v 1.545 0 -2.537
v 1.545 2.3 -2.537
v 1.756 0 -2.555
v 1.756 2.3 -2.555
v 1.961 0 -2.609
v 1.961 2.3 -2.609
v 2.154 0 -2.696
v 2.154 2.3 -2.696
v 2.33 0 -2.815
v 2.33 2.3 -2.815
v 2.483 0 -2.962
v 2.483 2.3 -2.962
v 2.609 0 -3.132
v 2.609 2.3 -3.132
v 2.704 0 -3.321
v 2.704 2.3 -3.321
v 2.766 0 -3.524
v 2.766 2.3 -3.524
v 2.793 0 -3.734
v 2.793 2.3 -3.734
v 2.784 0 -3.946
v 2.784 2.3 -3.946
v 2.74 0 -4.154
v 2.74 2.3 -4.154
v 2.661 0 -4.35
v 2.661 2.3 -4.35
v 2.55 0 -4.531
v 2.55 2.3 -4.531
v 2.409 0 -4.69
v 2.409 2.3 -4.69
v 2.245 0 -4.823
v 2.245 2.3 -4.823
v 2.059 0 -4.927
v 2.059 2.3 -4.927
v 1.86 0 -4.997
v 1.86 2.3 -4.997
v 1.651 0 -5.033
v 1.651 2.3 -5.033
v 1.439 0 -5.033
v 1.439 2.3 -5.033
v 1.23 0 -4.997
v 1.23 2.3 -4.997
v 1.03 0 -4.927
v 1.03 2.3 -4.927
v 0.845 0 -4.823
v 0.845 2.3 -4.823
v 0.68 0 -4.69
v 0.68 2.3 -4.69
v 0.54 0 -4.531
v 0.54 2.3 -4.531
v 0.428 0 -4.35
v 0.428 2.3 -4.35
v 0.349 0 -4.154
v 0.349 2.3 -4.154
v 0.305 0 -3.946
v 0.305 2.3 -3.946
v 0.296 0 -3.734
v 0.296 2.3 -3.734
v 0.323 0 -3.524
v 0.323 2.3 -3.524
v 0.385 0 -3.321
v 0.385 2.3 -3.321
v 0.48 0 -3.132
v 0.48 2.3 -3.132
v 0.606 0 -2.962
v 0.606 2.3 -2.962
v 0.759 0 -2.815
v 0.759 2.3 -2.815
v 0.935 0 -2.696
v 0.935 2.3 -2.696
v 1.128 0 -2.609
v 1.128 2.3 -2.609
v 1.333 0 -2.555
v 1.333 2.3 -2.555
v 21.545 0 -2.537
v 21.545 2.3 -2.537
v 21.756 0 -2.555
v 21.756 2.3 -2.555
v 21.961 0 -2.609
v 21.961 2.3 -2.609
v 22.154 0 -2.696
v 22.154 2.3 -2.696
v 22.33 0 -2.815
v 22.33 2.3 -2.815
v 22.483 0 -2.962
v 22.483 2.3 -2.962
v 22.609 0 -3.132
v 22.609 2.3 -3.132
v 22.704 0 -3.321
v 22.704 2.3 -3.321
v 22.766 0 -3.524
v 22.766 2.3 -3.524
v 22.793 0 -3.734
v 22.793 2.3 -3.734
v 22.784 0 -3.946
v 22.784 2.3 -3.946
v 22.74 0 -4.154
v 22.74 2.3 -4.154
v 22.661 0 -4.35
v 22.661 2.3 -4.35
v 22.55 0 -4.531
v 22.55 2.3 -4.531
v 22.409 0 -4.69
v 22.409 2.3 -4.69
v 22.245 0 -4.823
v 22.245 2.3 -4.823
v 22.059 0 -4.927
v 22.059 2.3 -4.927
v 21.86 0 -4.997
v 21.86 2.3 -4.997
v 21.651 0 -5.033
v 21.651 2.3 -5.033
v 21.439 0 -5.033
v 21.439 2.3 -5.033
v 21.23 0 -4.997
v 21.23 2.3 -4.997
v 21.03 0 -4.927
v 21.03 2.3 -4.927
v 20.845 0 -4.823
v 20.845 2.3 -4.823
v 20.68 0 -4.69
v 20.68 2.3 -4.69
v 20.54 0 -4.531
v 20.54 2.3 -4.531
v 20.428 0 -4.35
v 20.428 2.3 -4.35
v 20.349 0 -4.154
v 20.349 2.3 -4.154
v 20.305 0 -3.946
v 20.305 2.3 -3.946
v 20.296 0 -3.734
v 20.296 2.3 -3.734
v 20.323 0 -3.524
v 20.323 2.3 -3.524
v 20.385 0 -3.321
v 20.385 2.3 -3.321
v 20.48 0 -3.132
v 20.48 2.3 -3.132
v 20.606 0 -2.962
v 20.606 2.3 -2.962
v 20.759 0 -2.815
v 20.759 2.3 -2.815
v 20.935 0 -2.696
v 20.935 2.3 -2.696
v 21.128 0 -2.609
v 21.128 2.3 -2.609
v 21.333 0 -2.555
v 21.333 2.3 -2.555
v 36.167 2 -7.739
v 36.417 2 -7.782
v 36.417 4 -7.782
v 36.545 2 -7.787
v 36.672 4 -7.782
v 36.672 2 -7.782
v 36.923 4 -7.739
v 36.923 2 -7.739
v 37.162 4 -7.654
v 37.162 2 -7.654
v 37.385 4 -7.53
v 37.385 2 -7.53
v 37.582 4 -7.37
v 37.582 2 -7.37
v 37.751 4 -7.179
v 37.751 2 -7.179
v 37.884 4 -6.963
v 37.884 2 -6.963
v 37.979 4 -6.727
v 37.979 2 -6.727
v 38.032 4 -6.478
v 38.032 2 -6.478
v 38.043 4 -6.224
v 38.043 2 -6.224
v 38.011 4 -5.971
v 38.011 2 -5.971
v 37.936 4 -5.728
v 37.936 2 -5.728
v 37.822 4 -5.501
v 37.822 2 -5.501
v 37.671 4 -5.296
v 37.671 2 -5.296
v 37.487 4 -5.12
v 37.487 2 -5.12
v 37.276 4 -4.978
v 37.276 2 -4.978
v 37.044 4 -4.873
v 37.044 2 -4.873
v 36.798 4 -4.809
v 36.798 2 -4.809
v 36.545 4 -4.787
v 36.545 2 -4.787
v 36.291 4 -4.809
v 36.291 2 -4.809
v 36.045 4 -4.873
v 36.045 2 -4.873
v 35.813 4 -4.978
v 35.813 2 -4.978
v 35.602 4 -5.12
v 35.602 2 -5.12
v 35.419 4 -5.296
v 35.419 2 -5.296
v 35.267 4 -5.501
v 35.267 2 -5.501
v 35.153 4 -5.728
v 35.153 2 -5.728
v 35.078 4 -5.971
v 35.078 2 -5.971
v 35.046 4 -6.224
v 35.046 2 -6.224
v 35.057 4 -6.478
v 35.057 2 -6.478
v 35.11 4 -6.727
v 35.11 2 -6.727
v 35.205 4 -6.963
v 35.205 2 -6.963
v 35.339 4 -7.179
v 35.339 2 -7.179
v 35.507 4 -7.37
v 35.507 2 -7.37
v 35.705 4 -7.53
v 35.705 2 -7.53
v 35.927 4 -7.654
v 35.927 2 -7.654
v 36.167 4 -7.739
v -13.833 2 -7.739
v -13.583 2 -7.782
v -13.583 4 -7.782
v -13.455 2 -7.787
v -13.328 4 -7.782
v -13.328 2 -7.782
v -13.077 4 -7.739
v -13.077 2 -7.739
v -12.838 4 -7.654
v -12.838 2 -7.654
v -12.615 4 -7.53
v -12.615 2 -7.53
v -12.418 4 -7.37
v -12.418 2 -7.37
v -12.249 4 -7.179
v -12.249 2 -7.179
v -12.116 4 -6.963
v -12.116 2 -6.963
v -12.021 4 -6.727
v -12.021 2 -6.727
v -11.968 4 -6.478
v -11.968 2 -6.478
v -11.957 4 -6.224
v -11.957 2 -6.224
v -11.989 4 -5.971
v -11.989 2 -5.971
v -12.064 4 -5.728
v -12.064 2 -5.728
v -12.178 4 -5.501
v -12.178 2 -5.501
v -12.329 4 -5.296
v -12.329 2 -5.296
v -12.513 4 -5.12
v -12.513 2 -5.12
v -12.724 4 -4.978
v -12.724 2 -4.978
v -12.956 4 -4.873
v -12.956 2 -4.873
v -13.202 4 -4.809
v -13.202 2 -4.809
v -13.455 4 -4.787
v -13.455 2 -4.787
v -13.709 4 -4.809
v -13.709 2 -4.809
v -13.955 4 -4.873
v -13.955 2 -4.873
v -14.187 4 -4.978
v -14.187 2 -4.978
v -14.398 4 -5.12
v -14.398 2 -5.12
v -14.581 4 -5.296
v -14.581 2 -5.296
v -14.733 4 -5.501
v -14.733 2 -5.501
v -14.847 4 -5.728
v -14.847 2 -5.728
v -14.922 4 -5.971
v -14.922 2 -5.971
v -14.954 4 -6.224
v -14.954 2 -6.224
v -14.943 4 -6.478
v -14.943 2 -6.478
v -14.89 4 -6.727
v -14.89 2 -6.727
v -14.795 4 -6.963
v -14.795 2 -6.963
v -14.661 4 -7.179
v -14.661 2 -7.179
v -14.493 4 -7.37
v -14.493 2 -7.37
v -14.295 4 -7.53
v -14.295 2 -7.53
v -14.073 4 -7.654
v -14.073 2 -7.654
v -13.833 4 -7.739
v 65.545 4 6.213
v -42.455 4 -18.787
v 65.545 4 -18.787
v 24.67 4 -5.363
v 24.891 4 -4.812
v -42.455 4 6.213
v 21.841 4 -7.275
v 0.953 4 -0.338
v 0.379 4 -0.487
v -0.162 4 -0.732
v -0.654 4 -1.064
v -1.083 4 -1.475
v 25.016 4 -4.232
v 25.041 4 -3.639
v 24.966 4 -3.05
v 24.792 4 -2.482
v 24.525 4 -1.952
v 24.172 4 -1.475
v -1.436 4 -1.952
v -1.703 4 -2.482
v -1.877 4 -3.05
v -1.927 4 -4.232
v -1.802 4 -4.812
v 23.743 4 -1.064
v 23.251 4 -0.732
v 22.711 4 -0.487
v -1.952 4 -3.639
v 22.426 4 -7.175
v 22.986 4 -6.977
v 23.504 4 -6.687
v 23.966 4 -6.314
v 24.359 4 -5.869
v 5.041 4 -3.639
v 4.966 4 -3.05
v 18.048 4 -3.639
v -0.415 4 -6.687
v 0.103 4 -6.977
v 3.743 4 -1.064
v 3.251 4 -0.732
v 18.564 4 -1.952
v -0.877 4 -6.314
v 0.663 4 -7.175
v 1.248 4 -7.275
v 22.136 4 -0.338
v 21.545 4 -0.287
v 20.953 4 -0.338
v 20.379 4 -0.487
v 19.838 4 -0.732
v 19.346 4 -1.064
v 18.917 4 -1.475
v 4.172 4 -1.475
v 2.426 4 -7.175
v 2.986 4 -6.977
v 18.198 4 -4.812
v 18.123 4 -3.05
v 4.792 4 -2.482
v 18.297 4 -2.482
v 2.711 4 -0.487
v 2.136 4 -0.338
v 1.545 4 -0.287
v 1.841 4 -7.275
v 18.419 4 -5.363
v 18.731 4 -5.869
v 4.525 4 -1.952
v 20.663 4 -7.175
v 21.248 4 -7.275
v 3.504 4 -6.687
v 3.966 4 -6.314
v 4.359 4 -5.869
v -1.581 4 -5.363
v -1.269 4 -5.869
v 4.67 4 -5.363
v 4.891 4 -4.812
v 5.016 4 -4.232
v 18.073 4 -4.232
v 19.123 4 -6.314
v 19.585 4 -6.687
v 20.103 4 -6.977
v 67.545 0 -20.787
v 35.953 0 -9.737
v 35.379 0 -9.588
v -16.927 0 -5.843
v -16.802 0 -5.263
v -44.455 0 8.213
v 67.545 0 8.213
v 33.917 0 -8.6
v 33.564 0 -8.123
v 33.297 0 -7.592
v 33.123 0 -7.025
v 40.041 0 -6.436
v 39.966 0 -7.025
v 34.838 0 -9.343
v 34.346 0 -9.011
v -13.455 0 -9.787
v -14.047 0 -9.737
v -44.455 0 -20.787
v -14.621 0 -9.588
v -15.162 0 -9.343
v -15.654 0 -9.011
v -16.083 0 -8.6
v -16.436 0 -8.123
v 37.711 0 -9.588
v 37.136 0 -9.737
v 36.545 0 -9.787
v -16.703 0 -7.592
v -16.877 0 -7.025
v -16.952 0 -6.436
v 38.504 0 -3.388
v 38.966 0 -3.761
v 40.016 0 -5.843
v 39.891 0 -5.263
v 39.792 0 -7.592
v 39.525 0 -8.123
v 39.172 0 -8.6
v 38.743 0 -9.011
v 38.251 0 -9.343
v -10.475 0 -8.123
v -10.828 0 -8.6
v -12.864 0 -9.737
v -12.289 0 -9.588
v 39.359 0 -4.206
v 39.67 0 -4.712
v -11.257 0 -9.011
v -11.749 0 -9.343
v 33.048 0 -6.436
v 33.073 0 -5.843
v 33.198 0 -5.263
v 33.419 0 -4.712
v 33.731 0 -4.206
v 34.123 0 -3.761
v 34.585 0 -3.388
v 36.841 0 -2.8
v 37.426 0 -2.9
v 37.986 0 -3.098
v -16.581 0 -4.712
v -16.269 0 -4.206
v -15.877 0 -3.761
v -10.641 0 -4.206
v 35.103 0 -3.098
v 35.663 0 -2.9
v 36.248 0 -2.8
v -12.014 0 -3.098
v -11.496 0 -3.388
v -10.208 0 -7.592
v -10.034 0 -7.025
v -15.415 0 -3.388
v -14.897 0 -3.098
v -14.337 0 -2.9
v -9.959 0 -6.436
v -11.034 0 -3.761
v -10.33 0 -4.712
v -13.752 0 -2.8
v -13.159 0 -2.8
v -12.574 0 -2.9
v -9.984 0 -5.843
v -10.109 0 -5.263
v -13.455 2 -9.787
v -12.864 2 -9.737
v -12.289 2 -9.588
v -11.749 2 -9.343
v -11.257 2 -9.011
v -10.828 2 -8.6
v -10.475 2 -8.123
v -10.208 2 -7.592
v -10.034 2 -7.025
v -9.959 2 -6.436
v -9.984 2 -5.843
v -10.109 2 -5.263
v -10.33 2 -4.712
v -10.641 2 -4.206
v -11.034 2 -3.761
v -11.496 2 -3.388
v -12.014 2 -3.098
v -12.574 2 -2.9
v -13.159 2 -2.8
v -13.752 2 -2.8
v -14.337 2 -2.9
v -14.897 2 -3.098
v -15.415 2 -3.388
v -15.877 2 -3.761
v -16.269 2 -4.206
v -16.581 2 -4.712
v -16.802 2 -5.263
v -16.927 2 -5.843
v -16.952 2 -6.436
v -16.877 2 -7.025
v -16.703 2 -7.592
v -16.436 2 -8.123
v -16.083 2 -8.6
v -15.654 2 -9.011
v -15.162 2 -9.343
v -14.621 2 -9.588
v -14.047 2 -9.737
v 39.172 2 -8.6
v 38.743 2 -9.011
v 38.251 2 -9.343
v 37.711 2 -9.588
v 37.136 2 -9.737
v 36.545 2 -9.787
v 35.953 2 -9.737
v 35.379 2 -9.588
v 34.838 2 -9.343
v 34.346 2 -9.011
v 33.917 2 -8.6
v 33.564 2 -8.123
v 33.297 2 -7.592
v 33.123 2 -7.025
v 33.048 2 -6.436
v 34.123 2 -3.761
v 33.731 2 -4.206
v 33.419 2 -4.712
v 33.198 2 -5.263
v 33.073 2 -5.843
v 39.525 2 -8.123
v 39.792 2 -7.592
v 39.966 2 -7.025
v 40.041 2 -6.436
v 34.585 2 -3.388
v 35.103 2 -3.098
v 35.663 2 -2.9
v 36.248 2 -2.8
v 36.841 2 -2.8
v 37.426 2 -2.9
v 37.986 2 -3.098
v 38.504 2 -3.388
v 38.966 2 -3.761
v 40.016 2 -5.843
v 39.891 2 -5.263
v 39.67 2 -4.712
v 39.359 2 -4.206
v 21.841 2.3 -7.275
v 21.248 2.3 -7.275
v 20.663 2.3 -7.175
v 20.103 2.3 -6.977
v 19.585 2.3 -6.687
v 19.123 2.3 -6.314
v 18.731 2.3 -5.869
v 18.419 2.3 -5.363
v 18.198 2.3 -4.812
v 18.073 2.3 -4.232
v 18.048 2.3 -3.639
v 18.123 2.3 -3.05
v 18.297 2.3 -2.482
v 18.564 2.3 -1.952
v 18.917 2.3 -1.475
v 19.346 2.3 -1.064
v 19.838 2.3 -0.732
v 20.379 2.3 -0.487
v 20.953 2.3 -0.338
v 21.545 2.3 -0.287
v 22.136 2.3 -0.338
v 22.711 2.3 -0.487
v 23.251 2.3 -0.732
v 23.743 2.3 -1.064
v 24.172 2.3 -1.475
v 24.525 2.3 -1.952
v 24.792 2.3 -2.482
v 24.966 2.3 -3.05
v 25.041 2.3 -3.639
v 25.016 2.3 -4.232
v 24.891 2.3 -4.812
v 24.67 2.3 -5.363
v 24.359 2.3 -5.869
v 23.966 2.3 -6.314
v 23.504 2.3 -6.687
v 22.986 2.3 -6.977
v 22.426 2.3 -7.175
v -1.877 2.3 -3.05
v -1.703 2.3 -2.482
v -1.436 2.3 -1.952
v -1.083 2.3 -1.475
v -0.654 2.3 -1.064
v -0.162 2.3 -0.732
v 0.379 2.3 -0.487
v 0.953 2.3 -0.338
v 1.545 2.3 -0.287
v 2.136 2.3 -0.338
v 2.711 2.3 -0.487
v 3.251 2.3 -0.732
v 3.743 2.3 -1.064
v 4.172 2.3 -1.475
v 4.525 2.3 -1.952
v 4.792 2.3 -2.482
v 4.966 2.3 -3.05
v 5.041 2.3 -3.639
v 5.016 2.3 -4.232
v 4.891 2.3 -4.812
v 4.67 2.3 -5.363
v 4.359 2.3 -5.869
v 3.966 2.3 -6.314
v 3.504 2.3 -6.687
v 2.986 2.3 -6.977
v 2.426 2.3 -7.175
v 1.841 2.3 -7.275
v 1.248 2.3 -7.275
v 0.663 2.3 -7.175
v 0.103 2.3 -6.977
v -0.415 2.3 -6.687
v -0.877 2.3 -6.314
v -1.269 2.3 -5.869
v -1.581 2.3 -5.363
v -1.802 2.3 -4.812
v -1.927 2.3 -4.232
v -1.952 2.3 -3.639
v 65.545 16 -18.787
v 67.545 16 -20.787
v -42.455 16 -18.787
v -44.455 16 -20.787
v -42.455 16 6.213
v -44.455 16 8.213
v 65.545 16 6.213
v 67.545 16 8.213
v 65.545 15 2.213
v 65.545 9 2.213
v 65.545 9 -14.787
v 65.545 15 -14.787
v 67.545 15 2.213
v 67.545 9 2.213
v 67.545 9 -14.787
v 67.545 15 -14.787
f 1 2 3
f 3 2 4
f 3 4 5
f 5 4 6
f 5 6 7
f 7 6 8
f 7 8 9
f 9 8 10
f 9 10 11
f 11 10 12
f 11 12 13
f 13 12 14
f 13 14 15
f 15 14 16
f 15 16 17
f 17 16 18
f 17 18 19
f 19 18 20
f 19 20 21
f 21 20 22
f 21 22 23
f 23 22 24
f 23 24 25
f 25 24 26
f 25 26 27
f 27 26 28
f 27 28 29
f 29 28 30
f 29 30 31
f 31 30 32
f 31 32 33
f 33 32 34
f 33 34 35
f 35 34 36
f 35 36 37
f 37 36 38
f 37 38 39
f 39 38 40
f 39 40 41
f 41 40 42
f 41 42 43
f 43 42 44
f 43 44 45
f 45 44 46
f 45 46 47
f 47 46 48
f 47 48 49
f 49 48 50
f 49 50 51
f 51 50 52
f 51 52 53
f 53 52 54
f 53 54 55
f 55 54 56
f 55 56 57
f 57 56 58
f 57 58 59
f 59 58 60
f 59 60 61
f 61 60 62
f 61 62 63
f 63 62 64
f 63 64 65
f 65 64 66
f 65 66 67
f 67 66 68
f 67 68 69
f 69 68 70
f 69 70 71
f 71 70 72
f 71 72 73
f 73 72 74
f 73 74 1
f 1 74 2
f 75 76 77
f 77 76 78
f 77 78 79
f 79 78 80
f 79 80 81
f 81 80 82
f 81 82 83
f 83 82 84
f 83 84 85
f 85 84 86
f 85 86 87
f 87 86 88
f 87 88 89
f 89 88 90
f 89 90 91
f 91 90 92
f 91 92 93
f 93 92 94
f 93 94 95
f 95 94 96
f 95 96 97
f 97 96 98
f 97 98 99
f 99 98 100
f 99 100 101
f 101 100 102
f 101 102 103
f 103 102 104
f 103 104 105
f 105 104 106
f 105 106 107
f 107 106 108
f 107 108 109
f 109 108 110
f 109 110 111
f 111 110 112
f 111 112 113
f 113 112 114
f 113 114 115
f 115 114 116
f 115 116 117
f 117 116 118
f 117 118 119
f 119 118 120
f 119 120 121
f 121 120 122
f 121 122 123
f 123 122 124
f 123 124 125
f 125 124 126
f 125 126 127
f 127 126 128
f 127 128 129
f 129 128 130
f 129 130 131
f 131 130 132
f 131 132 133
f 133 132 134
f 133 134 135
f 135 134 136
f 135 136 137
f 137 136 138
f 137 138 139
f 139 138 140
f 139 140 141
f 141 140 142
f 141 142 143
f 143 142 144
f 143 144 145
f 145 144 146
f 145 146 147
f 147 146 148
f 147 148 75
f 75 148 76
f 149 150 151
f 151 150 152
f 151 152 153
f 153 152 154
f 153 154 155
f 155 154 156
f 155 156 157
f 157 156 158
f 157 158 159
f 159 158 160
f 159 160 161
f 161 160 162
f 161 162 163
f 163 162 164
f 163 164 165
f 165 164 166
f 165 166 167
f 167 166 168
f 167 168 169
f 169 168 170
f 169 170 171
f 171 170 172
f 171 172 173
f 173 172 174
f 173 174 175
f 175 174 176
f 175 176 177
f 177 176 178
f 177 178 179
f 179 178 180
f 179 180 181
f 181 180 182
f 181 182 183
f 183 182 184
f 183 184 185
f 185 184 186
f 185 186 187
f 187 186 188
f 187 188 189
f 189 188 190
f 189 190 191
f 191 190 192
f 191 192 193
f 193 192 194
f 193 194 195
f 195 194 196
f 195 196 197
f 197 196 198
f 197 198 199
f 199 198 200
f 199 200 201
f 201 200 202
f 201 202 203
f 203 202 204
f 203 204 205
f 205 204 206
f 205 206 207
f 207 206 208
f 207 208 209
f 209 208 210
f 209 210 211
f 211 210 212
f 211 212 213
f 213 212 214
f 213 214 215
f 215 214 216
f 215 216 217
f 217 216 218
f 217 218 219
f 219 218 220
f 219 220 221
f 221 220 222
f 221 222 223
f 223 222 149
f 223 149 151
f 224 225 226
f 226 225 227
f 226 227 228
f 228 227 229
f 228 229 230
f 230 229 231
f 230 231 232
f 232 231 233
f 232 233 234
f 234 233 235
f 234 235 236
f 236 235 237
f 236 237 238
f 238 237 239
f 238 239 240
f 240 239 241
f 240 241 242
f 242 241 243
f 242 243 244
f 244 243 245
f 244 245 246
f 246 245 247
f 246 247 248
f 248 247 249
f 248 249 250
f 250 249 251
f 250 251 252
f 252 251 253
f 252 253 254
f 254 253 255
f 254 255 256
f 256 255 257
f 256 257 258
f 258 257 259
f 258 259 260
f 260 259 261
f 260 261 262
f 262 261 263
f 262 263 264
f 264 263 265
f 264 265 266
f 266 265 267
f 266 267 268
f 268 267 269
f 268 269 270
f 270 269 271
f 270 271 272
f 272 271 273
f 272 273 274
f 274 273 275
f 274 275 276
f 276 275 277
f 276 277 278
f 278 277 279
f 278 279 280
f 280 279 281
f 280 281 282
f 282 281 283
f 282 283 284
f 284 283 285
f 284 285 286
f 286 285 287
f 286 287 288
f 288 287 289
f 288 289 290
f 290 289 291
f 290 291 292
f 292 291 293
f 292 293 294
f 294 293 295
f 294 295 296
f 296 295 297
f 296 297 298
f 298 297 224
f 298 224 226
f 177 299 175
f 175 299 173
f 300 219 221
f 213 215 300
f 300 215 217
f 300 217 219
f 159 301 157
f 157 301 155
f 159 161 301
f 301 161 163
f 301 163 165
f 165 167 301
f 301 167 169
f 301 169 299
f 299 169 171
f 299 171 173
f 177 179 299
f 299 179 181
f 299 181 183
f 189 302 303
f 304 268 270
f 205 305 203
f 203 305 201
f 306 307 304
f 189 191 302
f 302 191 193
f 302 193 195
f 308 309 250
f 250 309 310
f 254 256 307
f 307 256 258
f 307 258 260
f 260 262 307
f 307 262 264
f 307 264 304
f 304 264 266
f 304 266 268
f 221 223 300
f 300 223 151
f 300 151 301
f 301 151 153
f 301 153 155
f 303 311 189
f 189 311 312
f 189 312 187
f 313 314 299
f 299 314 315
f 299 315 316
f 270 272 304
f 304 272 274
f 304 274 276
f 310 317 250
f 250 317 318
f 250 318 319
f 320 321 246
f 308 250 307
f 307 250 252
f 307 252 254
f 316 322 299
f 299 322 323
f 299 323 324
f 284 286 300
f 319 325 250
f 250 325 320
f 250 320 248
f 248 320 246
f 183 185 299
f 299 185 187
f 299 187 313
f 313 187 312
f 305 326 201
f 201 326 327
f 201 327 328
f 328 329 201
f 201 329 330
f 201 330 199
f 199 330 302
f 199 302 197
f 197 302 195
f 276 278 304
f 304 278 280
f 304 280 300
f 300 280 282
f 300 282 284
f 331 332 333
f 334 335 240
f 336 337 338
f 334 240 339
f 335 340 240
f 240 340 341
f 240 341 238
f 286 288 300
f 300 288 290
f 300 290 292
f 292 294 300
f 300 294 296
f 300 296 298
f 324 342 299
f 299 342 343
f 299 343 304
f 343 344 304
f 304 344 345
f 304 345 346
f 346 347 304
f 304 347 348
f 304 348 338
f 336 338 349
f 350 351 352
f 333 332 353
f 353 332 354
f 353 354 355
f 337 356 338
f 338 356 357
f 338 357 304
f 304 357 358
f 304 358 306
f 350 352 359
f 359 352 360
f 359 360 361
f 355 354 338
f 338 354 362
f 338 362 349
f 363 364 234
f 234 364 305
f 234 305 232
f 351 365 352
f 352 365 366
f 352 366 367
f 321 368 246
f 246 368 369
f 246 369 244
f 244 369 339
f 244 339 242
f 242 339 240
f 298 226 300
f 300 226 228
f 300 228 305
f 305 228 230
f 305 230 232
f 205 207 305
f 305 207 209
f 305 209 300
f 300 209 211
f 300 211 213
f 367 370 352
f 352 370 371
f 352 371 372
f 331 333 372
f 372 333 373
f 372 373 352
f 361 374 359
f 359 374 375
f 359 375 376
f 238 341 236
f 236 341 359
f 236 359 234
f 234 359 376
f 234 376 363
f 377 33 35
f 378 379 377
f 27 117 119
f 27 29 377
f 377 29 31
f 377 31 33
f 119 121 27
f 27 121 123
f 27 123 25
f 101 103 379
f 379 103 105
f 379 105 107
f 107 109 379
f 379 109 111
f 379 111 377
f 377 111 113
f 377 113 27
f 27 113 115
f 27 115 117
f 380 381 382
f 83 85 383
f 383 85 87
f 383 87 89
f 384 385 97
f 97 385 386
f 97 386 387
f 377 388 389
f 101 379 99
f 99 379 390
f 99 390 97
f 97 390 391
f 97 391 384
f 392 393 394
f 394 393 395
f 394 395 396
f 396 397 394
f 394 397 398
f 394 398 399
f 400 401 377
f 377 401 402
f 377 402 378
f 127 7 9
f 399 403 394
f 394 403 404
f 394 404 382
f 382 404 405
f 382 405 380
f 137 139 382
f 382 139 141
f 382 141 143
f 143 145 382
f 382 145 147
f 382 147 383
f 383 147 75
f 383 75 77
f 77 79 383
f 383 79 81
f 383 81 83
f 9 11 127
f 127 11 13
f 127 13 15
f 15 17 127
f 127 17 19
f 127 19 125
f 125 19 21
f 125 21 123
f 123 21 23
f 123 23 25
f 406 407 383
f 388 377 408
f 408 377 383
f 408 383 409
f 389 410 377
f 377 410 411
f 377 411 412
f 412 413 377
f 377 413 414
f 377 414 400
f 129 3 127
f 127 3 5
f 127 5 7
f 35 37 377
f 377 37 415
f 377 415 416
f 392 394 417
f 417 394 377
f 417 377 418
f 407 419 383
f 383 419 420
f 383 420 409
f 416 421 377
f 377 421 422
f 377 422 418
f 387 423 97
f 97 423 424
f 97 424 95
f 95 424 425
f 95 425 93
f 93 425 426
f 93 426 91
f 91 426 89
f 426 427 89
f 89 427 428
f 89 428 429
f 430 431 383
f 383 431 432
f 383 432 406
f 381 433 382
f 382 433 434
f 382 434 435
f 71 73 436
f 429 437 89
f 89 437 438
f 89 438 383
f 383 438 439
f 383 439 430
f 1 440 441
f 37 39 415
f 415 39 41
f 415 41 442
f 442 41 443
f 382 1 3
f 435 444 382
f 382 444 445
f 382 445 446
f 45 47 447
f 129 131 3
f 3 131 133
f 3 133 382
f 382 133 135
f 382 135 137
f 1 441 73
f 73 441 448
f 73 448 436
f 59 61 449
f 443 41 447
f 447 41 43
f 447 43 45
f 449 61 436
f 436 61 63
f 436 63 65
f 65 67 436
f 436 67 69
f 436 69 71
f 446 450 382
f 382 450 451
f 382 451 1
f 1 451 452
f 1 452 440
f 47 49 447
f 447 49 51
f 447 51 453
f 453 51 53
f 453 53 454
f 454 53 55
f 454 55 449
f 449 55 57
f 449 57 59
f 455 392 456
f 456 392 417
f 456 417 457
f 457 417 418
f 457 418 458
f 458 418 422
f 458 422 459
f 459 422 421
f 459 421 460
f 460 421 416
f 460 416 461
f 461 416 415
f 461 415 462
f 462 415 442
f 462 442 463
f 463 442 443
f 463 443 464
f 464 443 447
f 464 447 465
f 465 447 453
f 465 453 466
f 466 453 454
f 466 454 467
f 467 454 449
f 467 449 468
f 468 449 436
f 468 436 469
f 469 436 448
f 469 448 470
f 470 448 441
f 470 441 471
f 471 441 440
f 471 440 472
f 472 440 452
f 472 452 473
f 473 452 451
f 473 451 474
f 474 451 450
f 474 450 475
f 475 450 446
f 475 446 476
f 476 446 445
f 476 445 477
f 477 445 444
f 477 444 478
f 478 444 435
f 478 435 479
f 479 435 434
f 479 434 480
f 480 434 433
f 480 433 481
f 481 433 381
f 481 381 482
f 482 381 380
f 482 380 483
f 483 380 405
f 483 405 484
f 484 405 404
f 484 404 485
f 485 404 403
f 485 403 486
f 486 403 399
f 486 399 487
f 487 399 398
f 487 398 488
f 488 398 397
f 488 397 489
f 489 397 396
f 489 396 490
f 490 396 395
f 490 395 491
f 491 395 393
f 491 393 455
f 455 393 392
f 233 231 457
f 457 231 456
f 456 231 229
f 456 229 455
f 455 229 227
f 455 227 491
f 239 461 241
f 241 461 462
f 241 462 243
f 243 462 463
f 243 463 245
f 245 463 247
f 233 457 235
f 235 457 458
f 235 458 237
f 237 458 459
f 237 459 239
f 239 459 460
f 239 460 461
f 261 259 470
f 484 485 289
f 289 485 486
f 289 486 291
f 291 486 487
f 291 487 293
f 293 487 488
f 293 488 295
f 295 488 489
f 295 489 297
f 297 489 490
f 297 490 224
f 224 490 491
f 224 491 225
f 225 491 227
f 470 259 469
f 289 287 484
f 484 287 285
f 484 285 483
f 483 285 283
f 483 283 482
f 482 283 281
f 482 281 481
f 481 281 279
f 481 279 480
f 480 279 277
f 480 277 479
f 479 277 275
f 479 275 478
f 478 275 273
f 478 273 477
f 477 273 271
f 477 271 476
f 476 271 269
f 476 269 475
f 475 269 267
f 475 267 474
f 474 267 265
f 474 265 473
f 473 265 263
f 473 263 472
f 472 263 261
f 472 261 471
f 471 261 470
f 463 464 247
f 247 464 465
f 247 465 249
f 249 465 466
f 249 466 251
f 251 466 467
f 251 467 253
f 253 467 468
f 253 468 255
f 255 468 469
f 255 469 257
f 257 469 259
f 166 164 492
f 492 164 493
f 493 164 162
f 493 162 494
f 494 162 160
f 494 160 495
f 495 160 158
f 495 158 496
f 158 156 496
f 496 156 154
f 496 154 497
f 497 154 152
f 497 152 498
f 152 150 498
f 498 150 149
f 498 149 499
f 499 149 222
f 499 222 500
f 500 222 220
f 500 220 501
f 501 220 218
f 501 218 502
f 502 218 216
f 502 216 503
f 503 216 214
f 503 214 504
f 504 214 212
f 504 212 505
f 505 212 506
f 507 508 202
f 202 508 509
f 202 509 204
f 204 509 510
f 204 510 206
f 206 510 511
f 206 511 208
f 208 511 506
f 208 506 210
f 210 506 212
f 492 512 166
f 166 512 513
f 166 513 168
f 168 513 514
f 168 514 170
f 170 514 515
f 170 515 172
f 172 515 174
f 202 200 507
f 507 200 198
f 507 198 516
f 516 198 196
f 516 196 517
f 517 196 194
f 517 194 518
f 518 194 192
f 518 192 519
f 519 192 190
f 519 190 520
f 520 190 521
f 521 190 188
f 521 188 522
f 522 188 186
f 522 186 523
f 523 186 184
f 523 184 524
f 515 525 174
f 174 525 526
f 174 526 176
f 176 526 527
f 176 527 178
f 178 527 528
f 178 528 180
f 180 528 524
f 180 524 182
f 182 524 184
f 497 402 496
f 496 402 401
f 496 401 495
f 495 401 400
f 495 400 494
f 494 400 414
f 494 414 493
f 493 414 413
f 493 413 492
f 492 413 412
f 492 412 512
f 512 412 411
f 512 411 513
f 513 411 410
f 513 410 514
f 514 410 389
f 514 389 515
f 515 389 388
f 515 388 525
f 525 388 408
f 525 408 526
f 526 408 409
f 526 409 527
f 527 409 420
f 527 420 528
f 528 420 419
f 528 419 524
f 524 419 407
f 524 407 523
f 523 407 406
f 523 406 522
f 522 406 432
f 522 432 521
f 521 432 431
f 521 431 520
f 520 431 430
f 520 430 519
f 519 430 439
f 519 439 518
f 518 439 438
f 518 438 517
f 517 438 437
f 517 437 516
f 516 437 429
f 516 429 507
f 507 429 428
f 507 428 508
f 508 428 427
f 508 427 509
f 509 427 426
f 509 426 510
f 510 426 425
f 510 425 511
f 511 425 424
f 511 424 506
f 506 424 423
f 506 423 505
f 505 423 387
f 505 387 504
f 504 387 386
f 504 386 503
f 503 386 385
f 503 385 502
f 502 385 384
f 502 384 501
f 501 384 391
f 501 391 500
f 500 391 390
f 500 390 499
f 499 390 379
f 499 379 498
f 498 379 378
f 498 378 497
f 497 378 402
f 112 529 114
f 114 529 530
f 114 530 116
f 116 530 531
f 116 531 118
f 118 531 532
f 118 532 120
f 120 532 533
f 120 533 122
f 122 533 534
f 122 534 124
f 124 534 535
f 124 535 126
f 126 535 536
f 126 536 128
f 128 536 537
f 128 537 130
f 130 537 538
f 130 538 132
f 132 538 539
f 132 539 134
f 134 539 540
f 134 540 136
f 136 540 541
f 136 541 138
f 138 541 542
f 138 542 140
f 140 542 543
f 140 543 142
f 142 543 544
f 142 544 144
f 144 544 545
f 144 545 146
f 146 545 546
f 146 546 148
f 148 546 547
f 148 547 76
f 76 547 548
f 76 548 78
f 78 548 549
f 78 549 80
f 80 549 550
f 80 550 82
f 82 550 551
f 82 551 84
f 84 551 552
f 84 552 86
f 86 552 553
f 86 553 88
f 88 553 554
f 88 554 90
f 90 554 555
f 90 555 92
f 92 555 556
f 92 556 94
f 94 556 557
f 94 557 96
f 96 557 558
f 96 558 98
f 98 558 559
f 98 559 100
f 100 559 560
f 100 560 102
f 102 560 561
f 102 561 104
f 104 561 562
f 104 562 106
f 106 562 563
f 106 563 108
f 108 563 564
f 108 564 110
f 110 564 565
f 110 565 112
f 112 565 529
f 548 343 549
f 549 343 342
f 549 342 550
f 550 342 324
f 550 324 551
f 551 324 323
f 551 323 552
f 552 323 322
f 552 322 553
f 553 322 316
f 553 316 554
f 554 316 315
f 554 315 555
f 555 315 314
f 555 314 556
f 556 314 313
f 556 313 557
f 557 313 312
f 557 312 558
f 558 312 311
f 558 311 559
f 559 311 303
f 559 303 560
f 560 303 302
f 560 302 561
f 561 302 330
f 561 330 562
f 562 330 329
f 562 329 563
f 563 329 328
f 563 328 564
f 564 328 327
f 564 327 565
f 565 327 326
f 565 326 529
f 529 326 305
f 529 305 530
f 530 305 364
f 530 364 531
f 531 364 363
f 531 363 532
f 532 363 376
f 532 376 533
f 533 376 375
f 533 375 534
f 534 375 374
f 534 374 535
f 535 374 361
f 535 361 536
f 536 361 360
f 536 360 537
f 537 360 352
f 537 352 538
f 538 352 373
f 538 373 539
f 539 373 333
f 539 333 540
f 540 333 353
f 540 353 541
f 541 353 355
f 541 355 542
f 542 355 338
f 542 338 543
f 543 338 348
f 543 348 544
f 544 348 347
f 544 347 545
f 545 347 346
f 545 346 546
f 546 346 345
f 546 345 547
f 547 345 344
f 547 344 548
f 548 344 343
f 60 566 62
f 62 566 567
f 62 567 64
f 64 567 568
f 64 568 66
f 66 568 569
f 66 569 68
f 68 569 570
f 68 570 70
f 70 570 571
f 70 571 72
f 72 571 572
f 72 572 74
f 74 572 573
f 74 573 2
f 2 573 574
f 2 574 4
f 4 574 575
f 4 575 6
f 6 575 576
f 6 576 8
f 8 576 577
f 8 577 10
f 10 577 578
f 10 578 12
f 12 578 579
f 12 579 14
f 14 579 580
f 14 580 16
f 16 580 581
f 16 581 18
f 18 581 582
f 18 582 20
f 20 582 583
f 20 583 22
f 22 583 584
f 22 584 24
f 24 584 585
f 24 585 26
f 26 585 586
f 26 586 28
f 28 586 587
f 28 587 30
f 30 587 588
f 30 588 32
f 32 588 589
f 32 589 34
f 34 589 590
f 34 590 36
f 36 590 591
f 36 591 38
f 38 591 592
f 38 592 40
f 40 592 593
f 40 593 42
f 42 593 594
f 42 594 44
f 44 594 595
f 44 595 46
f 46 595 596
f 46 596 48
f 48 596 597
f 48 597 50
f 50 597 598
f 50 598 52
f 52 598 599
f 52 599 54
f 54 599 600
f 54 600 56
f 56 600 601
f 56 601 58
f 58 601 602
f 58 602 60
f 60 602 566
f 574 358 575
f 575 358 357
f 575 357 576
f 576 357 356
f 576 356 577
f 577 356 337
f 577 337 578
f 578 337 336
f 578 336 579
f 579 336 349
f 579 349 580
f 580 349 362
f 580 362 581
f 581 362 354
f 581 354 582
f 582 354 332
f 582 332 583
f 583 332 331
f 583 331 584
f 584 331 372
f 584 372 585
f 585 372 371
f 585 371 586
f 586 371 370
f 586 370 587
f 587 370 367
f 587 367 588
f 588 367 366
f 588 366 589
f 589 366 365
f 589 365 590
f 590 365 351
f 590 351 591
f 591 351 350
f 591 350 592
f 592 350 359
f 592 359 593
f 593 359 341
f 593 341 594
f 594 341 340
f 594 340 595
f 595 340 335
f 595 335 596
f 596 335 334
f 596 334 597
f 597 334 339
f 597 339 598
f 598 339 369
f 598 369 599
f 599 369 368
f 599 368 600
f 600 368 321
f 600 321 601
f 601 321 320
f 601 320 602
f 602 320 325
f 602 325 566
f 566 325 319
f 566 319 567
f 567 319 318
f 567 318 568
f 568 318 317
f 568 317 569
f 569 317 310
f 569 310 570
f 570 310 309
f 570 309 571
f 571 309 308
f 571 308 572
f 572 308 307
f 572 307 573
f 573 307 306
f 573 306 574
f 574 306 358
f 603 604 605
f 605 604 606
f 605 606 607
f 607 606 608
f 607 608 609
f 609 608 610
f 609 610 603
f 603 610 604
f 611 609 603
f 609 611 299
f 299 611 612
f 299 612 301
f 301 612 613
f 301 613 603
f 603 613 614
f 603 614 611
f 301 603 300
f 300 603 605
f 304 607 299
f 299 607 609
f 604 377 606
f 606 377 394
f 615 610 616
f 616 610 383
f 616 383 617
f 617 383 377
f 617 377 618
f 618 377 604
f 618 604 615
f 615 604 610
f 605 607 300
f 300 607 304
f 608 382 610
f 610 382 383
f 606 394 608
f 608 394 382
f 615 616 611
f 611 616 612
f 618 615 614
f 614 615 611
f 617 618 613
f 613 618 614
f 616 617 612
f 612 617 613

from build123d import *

# Parameters (mm, degrees)
SKETCH1_W                = 108
SKETCH1_H                = 25
BOSS_EXTRUDE1_DEPTH      = 4
CUT_EXTRUDE1_REACH       = 6
SKETCH2_R                = 1.5
SKETCH3_R                = 3.5
SKETCH3_R_2              = 1.5
CUT_EXTRUDE3_DEPTH       = 2
CUT_EXTRUDE4_REACH       = 6
SKETCH4_R                = 1.25
SKETCH5_R                = 3.5
CUT_EXTRUDE5_DEPTH       = 1.7
SKETCH6_W                = 112
SKETCH6_H                = 29
SKETCH6_W_2              = 108
SKETCH6_H_2              = 25
BOSS_EXTRUDE2_DEPTH      = 12
BOSS_EXTRUDE2_DEPTH_BACK = 4
CUT_EXTRUDE8_REACH       = 114
SKETCH10_W               = 17
SKETCH10_H               = 6


with BuildPart() as part:
    # Sketch1 → Boss-Extrude1 (new body)
    with BuildSketch(Plane(origin=(0, 0, 0), x_dir=(1, 0, 0), z_dir=(0, 1, 0))):
        with Locations((11.544540658, 6.287491884)):
            Rectangle(SKETCH1_W, SKETCH1_H)
    extrude(amount=BOSS_EXTRUDE1_DEPTH)

    # Sketch2 → Cut-Extrude1 (cut, up to next)
    with BuildSketch(Plane(origin=(0, 4, 0), x_dir=(1, 0, 0), z_dir=(0, 1, 0)), mode=Mode.PRIVATE) as cut_extrude1_sk1:
        with Locations((-13.455459342, 6.287491884)):
            Circle(SKETCH2_R)
    cut_extrude1_tool1 = extrude(cut_extrude1_sk1.sketch, amount=-CUT_EXTRUDE1_REACH, mode=Mode.PRIVATE) & part.part
    add(cut_extrude1_tool1.solids().sort_by_distance((-13.455459, 4, -6.287492))[0], mode=Mode.SUBTRACT)
    # Sketch2 → Cut-Extrude1 (cut, up to next)
    with BuildSketch(Plane(origin=(0, 4, 0), x_dir=(1, 0, 0), z_dir=(0, 1, 0)), mode=Mode.PRIVATE) as cut_extrude1_sk2:
        with Locations((36.544540658, 6.287491884)):
            Circle(SKETCH2_R)
    cut_extrude1_tool2 = extrude(cut_extrude1_sk2.sketch, amount=-CUT_EXTRUDE1_REACH, mode=Mode.PRIVATE) & part.part
    add(cut_extrude1_tool2.solids().sort_by_distance((36.544541, 4, -6.287492))[0], mode=Mode.SUBTRACT)

    # Sketch3 → Cut-Extrude3 (cut)
    with BuildSketch(Plane(origin=(0, 0, 0), x_dir=(-1, 0, 0), z_dir=(0, -1, 0))):
        with Locations((13.455459342, 6.287491884)):
            Circle(SKETCH3_R)
        with Locations((13.455459342, 6.287491884)):
            Circle(SKETCH3_R_2, mode=Mode.SUBTRACT)
        with Locations((-36.544540658, 6.287491884)):
            Circle(SKETCH3_R)
    extrude(amount=-CUT_EXTRUDE3_DEPTH, mode=Mode.SUBTRACT)

    # Sketch4 → Cut-Extrude4 (cut, up to next)
    with BuildSketch(Plane(origin=(0, 4, 0), x_dir=(1, 0, 0), z_dir=(0, 1, 0)), mode=Mode.PRIVATE) as cut_extrude4_sk1:
        with Locations((21.544540658, 3.787491884)):
            Circle(SKETCH4_R)
    cut_extrude4_tool1 = extrude(cut_extrude4_sk1.sketch, amount=-CUT_EXTRUDE4_REACH, mode=Mode.PRIVATE) & part.part
    add(cut_extrude4_tool1.solids().sort_by_distance((21.544541, 4, -3.787492))[0], mode=Mode.SUBTRACT)
    # Sketch4 → Cut-Extrude4 (cut, up to next)
    with BuildSketch(Plane(origin=(0, 4, 0), x_dir=(1, 0, 0), z_dir=(0, 1, 0)), mode=Mode.PRIVATE) as cut_extrude4_sk2:
        with Locations((1.544540658, 3.787491884)):
            Circle(SKETCH4_R)
    cut_extrude4_tool2 = extrude(cut_extrude4_sk2.sketch, amount=-CUT_EXTRUDE4_REACH, mode=Mode.PRIVATE) & part.part
    add(cut_extrude4_tool2.solids().sort_by_distance((1.544541, 4, -3.787492))[0], mode=Mode.SUBTRACT)

    # Sketch5 → Cut-Extrude5 (cut)
    with BuildSketch(Plane(origin=(0, 4, 0), x_dir=(1, 0, 0), z_dir=(0, 1, 0))):
        with Locations((21.544540658, 3.787491884)):
            Circle(SKETCH5_R)
        with Locations((1.544540658, 3.787491884)):
            Circle(SKETCH5_R)
    extrude(amount=-CUT_EXTRUDE5_DEPTH, mode=Mode.SUBTRACT)

    # Sketch6 → Boss-Extrude2 (add, two sides)
    with BuildSketch(Plane(origin=(0, 4, 0), x_dir=(1, 0, 0), z_dir=(0, 1, 0))) as boss_extrude2_sk:
        with Locations((11.544540658, 6.287491884)):
            Rectangle(SKETCH6_W, SKETCH6_H)
        with Locations((11.544540658, 6.287491884)):
            Rectangle(SKETCH6_W_2, SKETCH6_H_2, mode=Mode.SUBTRACT)
    extrude(amount=BOSS_EXTRUDE2_DEPTH)
    extrude(boss_extrude2_sk.sketch, amount=-BOSS_EXTRUDE2_DEPTH_BACK)

    # Sketch10 → Cut-Extrude8 (cut, up to next)
    with BuildSketch(Plane(origin=(67.544540658, 0, 0), x_dir=(0, 0, -1), z_dir=(1, 0, 0)), mode=Mode.PRIVATE) as cut_extrude8_sk1:
        with Locations((6.287491884, 12)):
            Rectangle(SKETCH10_W, SKETCH10_H)
    cut_extrude8_tool1 = extrude(cut_extrude8_sk1.sketch, amount=-CUT_EXTRUDE8_REACH, mode=Mode.PRIVATE) & part.part
    add(cut_extrude8_tool1.solids().sort_by_distance((67.544541, 12, -6.287492))[0], mode=Mode.SUBTRACT)


solid = part.part
